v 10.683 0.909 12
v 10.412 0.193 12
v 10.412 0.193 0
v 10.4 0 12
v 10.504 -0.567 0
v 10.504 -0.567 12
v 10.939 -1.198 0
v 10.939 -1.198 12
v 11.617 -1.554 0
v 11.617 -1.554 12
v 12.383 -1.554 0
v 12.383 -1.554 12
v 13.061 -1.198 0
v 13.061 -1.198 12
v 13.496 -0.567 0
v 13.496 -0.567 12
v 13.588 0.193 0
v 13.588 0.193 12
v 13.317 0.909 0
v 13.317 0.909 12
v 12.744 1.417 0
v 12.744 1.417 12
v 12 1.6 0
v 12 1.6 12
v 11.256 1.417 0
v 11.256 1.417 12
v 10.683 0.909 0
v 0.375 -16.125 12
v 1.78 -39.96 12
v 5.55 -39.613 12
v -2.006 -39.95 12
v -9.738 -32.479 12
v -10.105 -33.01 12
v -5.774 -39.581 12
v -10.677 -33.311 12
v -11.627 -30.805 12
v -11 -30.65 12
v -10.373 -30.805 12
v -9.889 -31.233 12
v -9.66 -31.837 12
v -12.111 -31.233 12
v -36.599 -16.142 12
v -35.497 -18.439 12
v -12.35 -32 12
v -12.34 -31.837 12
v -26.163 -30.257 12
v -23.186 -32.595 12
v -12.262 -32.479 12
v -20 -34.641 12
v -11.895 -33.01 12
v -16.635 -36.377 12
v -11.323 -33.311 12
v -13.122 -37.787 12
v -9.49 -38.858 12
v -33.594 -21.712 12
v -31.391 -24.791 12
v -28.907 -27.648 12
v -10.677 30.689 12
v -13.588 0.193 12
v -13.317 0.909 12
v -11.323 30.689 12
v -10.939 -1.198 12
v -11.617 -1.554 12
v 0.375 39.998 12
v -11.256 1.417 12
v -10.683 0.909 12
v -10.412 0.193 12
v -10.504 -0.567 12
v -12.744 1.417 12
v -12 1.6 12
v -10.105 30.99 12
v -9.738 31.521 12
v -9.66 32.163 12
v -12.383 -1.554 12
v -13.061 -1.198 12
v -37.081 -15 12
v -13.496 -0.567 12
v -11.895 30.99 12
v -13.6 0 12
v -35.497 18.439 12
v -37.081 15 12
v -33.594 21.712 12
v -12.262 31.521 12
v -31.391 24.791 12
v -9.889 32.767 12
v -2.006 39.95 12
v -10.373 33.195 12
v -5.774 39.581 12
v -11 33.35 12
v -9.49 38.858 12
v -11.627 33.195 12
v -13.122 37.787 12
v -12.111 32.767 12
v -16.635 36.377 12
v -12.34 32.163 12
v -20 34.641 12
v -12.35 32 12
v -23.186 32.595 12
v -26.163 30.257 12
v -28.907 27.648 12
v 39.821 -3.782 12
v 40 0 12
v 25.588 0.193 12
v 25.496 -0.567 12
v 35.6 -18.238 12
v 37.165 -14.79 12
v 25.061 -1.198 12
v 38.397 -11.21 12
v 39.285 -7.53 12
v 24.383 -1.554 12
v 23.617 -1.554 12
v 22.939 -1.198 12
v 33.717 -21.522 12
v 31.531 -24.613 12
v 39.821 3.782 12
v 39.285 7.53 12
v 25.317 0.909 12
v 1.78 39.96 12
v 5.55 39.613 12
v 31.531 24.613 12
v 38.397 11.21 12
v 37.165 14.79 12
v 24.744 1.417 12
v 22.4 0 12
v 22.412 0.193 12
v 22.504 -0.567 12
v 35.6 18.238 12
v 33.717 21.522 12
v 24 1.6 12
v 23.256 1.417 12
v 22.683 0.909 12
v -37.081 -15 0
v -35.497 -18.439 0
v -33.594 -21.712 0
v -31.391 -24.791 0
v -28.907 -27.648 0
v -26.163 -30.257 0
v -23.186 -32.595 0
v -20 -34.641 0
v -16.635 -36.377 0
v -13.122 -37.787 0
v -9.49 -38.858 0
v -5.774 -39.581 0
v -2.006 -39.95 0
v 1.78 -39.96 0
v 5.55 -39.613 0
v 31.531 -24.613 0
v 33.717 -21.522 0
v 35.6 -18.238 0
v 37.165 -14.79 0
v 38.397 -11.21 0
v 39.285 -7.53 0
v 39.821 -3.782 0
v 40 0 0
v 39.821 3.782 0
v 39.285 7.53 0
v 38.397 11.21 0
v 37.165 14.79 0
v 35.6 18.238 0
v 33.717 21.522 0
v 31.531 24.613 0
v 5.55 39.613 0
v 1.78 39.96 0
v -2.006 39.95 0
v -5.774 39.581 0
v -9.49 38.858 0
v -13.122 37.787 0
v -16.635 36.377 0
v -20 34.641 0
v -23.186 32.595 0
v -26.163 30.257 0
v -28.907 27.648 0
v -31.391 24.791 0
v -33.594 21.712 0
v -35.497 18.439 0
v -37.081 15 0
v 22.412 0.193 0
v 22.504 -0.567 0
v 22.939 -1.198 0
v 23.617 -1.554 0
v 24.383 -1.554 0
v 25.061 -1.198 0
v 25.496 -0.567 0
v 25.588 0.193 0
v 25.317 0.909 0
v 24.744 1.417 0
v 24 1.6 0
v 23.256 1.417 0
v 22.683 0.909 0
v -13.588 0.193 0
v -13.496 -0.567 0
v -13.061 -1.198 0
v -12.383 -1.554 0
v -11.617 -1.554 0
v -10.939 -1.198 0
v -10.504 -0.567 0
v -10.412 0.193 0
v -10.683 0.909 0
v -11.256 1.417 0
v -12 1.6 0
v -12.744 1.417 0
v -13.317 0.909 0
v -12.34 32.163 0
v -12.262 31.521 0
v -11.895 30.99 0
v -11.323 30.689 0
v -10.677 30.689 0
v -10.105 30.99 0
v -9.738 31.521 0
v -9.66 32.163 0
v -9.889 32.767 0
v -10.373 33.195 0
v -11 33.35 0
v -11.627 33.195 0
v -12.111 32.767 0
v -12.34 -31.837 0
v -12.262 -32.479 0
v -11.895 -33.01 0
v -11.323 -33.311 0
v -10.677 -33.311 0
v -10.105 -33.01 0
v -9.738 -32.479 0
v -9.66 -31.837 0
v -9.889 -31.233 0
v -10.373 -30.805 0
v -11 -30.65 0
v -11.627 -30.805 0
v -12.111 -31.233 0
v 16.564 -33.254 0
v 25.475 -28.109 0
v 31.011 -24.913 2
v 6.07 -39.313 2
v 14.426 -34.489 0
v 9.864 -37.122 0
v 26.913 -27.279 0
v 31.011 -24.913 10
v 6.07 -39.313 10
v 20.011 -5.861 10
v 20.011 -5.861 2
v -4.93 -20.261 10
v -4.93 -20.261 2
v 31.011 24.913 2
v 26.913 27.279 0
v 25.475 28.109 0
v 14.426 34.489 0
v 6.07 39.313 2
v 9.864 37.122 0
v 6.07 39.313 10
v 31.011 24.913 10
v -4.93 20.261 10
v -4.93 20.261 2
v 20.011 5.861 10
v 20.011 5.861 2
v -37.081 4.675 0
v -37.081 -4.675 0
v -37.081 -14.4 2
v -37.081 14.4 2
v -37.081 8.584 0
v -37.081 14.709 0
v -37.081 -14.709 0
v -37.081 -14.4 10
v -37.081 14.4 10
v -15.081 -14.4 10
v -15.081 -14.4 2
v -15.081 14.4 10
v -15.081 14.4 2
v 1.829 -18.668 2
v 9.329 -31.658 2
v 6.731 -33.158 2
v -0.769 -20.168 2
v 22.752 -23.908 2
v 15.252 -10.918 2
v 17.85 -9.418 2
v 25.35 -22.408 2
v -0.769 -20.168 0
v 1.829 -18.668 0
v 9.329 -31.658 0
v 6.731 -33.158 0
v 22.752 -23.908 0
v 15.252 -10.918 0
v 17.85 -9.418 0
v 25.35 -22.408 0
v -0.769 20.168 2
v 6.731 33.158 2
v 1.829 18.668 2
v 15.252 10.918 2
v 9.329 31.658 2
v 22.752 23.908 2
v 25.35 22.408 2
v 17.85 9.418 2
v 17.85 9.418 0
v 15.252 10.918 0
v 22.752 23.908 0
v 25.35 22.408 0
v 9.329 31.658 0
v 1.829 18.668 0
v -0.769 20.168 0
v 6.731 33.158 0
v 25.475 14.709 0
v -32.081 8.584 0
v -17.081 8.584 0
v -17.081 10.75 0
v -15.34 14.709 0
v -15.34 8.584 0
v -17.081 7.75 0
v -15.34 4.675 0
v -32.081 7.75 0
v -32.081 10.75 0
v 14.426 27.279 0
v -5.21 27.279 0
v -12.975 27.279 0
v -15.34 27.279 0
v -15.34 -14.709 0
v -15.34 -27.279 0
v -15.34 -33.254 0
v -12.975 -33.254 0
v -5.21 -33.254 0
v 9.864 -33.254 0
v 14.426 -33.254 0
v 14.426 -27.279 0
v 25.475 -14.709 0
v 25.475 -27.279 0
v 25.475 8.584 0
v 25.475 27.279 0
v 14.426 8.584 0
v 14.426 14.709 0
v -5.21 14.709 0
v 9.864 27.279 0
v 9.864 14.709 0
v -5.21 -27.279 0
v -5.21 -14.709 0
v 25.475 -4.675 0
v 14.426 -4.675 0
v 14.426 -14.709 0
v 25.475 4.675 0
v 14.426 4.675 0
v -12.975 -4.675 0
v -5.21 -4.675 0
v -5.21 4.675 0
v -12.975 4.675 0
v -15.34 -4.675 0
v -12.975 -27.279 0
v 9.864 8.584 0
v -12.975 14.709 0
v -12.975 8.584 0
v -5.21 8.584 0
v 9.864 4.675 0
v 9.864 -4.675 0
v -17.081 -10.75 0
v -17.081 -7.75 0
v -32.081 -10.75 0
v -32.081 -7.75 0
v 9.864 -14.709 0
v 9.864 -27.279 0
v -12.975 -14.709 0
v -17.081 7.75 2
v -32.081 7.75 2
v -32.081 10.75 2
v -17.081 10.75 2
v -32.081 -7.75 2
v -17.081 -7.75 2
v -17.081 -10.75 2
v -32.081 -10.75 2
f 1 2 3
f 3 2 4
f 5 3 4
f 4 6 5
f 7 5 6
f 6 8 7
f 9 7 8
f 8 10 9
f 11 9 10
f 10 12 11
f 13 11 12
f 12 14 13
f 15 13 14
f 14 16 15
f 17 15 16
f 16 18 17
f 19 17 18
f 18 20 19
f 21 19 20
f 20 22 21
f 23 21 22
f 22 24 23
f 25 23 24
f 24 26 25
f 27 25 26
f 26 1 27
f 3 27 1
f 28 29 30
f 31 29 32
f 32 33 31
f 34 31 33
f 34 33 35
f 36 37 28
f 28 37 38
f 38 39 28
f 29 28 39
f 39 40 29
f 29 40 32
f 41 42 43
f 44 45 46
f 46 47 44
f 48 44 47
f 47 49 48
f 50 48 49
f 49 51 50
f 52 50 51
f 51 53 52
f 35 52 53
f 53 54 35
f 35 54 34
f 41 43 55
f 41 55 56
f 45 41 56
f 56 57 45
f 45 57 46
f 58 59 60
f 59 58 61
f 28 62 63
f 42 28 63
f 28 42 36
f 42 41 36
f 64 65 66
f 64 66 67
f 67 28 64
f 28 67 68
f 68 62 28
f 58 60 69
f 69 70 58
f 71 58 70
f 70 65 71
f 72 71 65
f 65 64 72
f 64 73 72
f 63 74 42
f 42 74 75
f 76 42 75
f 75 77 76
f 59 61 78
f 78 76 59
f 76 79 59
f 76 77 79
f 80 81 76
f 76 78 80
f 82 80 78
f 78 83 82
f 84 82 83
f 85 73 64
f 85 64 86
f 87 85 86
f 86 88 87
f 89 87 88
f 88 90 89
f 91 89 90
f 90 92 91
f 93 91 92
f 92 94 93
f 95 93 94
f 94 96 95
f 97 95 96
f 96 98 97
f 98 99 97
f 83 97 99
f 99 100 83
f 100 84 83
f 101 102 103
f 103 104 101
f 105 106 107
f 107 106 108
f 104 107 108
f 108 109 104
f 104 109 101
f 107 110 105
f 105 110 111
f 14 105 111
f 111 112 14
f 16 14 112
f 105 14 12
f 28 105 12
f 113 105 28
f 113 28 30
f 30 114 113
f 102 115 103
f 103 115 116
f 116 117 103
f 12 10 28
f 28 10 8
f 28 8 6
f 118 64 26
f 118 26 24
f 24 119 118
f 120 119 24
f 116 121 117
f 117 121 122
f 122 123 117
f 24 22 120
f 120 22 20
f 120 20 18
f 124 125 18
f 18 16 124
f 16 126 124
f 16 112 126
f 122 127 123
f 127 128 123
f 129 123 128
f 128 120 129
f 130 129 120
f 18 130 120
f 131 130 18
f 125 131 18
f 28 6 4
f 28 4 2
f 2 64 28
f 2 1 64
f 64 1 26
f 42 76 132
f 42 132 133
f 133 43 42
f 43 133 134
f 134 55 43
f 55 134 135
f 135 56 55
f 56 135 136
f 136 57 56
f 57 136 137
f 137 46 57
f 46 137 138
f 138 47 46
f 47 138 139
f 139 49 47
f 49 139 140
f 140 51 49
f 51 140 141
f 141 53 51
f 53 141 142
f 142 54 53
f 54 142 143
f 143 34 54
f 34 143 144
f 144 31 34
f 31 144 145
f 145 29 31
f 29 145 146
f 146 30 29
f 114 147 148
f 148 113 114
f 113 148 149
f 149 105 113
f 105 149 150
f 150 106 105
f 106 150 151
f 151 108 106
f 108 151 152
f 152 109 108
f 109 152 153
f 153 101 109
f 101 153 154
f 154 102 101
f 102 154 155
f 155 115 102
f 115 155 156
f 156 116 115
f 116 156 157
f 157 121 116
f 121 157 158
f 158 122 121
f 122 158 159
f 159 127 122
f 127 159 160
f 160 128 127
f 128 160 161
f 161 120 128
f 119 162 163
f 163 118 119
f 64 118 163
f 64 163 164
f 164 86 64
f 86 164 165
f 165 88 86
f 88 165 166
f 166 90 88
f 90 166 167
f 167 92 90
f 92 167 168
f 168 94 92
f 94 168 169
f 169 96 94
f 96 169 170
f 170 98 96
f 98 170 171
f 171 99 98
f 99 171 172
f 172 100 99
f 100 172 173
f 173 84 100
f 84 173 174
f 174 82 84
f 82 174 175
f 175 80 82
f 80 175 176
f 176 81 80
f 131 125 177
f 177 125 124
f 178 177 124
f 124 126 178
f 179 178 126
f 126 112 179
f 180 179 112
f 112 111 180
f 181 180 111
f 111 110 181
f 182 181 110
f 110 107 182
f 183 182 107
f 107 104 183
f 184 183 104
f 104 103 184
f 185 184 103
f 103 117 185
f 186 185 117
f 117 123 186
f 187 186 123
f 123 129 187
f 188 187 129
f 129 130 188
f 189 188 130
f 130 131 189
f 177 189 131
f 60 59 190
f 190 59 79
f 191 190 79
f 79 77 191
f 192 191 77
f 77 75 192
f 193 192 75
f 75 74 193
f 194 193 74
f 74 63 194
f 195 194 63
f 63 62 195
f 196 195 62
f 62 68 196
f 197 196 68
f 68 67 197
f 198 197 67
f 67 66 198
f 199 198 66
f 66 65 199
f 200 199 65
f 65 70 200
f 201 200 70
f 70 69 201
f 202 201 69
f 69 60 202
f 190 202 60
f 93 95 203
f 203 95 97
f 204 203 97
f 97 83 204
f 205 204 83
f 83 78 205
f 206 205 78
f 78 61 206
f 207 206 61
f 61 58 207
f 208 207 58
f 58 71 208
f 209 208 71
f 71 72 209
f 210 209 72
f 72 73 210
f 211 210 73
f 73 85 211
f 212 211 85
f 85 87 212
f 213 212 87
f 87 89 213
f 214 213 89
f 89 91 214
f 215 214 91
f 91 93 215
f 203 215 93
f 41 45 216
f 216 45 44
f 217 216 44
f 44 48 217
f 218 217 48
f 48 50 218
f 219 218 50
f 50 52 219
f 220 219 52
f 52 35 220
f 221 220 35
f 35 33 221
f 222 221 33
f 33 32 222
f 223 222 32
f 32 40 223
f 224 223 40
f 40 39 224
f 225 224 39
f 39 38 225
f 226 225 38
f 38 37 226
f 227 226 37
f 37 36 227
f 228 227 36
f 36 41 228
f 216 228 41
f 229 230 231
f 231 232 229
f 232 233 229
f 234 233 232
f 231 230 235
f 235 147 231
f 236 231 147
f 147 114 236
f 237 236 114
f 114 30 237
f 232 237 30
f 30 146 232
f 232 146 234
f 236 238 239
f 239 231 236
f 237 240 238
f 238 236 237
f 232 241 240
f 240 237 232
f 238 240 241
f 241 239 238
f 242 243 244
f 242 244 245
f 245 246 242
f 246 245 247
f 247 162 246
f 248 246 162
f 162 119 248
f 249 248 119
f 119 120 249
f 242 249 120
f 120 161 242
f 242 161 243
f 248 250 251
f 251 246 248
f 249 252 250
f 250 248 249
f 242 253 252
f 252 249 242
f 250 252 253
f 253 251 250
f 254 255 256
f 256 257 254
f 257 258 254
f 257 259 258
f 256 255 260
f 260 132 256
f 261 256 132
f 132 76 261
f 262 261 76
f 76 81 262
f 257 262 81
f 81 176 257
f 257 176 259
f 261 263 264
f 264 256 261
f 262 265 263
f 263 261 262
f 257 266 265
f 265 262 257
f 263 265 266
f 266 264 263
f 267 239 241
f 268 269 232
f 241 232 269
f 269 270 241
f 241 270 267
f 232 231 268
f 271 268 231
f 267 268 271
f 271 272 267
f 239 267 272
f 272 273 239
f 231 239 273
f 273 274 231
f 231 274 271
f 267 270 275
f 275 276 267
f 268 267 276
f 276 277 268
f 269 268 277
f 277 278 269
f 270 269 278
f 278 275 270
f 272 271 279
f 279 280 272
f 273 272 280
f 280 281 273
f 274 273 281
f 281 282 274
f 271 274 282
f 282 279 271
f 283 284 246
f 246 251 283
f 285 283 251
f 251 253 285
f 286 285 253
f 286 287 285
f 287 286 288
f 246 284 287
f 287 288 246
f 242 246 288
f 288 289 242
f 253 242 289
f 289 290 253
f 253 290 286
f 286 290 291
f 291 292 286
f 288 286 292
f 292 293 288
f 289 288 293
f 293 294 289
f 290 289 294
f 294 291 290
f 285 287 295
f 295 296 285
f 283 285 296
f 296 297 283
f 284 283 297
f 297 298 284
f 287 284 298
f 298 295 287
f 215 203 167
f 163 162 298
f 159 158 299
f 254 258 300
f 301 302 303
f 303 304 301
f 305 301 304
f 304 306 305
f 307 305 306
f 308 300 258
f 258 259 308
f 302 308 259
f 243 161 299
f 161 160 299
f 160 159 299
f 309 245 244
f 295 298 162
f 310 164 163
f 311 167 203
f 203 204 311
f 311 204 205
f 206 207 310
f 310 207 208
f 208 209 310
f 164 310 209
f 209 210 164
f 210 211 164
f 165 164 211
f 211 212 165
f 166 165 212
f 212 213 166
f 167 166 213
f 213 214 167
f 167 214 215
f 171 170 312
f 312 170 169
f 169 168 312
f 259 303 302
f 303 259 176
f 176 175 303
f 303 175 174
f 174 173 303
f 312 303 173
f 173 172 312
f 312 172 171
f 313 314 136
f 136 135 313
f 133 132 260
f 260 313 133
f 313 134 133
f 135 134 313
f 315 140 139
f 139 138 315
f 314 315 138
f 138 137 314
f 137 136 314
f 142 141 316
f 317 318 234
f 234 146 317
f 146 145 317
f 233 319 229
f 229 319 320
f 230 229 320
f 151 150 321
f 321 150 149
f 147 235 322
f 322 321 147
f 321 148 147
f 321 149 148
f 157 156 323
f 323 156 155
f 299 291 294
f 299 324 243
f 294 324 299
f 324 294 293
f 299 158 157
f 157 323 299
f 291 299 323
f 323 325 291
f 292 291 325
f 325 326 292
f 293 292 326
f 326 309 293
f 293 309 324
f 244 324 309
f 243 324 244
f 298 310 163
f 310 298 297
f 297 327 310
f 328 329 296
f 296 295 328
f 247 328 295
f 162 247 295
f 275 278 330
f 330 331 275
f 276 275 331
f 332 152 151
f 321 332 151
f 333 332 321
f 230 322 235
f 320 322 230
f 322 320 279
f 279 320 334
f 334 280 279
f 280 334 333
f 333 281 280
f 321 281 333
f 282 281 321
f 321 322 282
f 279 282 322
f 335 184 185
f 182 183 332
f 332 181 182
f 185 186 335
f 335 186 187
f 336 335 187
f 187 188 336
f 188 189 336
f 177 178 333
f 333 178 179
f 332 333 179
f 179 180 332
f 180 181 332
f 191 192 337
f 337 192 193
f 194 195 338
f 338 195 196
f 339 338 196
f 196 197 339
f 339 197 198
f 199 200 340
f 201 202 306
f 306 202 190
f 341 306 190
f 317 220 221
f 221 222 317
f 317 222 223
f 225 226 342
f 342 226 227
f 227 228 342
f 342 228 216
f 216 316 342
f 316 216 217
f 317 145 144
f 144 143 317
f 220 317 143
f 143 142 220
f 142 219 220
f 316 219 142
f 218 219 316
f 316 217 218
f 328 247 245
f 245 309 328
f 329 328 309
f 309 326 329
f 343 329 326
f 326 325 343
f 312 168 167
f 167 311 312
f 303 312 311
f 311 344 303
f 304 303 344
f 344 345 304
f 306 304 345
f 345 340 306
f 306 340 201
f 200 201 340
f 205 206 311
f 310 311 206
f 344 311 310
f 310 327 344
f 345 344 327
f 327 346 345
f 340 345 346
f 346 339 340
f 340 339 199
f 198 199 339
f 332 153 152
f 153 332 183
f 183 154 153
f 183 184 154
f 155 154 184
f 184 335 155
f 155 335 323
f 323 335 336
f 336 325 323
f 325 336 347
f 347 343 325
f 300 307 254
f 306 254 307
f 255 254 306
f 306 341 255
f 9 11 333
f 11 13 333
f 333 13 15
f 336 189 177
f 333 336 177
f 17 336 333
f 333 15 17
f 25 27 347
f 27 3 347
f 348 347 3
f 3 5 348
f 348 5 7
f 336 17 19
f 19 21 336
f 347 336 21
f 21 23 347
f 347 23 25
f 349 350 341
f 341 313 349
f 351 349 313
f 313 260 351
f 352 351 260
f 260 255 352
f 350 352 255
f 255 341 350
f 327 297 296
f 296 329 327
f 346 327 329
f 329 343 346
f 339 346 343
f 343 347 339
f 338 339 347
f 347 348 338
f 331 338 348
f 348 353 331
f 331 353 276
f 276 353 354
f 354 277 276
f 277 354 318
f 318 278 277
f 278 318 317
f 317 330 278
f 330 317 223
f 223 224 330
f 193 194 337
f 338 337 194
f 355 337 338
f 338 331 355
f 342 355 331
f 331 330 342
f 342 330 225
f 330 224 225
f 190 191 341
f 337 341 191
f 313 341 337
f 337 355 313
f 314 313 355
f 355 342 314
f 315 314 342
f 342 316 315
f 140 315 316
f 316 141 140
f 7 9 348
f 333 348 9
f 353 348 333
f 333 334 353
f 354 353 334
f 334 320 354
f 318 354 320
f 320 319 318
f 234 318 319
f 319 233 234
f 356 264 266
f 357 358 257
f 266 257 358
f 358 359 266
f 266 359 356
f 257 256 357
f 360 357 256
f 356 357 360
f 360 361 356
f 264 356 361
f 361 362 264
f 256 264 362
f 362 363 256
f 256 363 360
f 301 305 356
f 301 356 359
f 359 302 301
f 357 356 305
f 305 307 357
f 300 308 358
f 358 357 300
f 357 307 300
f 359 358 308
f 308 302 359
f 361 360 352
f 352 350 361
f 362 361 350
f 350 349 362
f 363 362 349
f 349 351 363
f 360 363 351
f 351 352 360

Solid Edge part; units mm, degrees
sketch "Sketch1" plane through (0, 0, 0) normal (0, 0, 1) x (1, 0, 0)
  circle A0 centre (0, 0) radius 40
  dimension "D1" = 80
extrude "Protrusion1" add sketch "Sketch1" along normal blind 12
sketch "Sketch2" plane through (0, 0, 0) normal (0, 0, 1) x (1, 0, 0)
  line L0 (-37.081, 15) -> (-37.081, -15)
extrude "Cutout1" cut sketch "Sketch2" along normal through all material side at (-37.131, 0, 0)
sketch "Sketch3" plane through (-37.081, 0, 6) normal (-1, 0, 0) x (0, -1, 0)
  line L0 (14.4, 4) -> (-14.4, 4)
  line L1 (-14.4, 4) -> (-14.4, -4)
  line L2 (-14.4, -4) -> (14.4, -4)
  line L3 (14.4, -4) -> (14.4, 4)
extrude "Extrusionsausschnitt_5" cut sketch "Sketch3" against normal blind 22
sketch "Sketch4" plane through (-24.581, 0, 2) normal (0, 0, 1) x (0, -1, 0)
  line L0 (-7.75, 7.5) -> (-7.75, -7.5)
  line L1 (-7.75, -7.5) -> (-10.75, -7.5)
  line L2 (-10.75, -7.5) -> (-10.75, 7.5)
  line L3 (-10.75, 7.5) -> (-7.75, 7.5)
extrude "Cutout2" cut sketch "Sketch4" against normal through all
mirror "Mirror1" about plane through (0, 0, 0) normal (0, -1, 0) of "Cutout2"
pattern_circular "Pattern1" count 3 over 360 about axis through (0, 0, 0) along (0, 0, -1) of "Mirror1", "Cutout2", "Extrusionsausschnitt_5", "Cutout1"
hole "Bohrung_3" at (12, 0, 0) direction (0, 0, 1) diameter 3.2 end through all
hole "Hole1" at (24, 0, 0) direction (0, 0, 1) diameter 3.2 end through all
hole "Bohrung_5" at (-12, 0, 0) direction (0, 0, 1) diameter 3.2 end through all
hole "Bohrung_6" at (-11, 32, 0) direction (0, 0, 1) diameter 2.7 end through all
hole "Hole2" at (-11, -32, 0) direction (0, 0, 1) diameter 2.7 end through all
properties material "PVC"
